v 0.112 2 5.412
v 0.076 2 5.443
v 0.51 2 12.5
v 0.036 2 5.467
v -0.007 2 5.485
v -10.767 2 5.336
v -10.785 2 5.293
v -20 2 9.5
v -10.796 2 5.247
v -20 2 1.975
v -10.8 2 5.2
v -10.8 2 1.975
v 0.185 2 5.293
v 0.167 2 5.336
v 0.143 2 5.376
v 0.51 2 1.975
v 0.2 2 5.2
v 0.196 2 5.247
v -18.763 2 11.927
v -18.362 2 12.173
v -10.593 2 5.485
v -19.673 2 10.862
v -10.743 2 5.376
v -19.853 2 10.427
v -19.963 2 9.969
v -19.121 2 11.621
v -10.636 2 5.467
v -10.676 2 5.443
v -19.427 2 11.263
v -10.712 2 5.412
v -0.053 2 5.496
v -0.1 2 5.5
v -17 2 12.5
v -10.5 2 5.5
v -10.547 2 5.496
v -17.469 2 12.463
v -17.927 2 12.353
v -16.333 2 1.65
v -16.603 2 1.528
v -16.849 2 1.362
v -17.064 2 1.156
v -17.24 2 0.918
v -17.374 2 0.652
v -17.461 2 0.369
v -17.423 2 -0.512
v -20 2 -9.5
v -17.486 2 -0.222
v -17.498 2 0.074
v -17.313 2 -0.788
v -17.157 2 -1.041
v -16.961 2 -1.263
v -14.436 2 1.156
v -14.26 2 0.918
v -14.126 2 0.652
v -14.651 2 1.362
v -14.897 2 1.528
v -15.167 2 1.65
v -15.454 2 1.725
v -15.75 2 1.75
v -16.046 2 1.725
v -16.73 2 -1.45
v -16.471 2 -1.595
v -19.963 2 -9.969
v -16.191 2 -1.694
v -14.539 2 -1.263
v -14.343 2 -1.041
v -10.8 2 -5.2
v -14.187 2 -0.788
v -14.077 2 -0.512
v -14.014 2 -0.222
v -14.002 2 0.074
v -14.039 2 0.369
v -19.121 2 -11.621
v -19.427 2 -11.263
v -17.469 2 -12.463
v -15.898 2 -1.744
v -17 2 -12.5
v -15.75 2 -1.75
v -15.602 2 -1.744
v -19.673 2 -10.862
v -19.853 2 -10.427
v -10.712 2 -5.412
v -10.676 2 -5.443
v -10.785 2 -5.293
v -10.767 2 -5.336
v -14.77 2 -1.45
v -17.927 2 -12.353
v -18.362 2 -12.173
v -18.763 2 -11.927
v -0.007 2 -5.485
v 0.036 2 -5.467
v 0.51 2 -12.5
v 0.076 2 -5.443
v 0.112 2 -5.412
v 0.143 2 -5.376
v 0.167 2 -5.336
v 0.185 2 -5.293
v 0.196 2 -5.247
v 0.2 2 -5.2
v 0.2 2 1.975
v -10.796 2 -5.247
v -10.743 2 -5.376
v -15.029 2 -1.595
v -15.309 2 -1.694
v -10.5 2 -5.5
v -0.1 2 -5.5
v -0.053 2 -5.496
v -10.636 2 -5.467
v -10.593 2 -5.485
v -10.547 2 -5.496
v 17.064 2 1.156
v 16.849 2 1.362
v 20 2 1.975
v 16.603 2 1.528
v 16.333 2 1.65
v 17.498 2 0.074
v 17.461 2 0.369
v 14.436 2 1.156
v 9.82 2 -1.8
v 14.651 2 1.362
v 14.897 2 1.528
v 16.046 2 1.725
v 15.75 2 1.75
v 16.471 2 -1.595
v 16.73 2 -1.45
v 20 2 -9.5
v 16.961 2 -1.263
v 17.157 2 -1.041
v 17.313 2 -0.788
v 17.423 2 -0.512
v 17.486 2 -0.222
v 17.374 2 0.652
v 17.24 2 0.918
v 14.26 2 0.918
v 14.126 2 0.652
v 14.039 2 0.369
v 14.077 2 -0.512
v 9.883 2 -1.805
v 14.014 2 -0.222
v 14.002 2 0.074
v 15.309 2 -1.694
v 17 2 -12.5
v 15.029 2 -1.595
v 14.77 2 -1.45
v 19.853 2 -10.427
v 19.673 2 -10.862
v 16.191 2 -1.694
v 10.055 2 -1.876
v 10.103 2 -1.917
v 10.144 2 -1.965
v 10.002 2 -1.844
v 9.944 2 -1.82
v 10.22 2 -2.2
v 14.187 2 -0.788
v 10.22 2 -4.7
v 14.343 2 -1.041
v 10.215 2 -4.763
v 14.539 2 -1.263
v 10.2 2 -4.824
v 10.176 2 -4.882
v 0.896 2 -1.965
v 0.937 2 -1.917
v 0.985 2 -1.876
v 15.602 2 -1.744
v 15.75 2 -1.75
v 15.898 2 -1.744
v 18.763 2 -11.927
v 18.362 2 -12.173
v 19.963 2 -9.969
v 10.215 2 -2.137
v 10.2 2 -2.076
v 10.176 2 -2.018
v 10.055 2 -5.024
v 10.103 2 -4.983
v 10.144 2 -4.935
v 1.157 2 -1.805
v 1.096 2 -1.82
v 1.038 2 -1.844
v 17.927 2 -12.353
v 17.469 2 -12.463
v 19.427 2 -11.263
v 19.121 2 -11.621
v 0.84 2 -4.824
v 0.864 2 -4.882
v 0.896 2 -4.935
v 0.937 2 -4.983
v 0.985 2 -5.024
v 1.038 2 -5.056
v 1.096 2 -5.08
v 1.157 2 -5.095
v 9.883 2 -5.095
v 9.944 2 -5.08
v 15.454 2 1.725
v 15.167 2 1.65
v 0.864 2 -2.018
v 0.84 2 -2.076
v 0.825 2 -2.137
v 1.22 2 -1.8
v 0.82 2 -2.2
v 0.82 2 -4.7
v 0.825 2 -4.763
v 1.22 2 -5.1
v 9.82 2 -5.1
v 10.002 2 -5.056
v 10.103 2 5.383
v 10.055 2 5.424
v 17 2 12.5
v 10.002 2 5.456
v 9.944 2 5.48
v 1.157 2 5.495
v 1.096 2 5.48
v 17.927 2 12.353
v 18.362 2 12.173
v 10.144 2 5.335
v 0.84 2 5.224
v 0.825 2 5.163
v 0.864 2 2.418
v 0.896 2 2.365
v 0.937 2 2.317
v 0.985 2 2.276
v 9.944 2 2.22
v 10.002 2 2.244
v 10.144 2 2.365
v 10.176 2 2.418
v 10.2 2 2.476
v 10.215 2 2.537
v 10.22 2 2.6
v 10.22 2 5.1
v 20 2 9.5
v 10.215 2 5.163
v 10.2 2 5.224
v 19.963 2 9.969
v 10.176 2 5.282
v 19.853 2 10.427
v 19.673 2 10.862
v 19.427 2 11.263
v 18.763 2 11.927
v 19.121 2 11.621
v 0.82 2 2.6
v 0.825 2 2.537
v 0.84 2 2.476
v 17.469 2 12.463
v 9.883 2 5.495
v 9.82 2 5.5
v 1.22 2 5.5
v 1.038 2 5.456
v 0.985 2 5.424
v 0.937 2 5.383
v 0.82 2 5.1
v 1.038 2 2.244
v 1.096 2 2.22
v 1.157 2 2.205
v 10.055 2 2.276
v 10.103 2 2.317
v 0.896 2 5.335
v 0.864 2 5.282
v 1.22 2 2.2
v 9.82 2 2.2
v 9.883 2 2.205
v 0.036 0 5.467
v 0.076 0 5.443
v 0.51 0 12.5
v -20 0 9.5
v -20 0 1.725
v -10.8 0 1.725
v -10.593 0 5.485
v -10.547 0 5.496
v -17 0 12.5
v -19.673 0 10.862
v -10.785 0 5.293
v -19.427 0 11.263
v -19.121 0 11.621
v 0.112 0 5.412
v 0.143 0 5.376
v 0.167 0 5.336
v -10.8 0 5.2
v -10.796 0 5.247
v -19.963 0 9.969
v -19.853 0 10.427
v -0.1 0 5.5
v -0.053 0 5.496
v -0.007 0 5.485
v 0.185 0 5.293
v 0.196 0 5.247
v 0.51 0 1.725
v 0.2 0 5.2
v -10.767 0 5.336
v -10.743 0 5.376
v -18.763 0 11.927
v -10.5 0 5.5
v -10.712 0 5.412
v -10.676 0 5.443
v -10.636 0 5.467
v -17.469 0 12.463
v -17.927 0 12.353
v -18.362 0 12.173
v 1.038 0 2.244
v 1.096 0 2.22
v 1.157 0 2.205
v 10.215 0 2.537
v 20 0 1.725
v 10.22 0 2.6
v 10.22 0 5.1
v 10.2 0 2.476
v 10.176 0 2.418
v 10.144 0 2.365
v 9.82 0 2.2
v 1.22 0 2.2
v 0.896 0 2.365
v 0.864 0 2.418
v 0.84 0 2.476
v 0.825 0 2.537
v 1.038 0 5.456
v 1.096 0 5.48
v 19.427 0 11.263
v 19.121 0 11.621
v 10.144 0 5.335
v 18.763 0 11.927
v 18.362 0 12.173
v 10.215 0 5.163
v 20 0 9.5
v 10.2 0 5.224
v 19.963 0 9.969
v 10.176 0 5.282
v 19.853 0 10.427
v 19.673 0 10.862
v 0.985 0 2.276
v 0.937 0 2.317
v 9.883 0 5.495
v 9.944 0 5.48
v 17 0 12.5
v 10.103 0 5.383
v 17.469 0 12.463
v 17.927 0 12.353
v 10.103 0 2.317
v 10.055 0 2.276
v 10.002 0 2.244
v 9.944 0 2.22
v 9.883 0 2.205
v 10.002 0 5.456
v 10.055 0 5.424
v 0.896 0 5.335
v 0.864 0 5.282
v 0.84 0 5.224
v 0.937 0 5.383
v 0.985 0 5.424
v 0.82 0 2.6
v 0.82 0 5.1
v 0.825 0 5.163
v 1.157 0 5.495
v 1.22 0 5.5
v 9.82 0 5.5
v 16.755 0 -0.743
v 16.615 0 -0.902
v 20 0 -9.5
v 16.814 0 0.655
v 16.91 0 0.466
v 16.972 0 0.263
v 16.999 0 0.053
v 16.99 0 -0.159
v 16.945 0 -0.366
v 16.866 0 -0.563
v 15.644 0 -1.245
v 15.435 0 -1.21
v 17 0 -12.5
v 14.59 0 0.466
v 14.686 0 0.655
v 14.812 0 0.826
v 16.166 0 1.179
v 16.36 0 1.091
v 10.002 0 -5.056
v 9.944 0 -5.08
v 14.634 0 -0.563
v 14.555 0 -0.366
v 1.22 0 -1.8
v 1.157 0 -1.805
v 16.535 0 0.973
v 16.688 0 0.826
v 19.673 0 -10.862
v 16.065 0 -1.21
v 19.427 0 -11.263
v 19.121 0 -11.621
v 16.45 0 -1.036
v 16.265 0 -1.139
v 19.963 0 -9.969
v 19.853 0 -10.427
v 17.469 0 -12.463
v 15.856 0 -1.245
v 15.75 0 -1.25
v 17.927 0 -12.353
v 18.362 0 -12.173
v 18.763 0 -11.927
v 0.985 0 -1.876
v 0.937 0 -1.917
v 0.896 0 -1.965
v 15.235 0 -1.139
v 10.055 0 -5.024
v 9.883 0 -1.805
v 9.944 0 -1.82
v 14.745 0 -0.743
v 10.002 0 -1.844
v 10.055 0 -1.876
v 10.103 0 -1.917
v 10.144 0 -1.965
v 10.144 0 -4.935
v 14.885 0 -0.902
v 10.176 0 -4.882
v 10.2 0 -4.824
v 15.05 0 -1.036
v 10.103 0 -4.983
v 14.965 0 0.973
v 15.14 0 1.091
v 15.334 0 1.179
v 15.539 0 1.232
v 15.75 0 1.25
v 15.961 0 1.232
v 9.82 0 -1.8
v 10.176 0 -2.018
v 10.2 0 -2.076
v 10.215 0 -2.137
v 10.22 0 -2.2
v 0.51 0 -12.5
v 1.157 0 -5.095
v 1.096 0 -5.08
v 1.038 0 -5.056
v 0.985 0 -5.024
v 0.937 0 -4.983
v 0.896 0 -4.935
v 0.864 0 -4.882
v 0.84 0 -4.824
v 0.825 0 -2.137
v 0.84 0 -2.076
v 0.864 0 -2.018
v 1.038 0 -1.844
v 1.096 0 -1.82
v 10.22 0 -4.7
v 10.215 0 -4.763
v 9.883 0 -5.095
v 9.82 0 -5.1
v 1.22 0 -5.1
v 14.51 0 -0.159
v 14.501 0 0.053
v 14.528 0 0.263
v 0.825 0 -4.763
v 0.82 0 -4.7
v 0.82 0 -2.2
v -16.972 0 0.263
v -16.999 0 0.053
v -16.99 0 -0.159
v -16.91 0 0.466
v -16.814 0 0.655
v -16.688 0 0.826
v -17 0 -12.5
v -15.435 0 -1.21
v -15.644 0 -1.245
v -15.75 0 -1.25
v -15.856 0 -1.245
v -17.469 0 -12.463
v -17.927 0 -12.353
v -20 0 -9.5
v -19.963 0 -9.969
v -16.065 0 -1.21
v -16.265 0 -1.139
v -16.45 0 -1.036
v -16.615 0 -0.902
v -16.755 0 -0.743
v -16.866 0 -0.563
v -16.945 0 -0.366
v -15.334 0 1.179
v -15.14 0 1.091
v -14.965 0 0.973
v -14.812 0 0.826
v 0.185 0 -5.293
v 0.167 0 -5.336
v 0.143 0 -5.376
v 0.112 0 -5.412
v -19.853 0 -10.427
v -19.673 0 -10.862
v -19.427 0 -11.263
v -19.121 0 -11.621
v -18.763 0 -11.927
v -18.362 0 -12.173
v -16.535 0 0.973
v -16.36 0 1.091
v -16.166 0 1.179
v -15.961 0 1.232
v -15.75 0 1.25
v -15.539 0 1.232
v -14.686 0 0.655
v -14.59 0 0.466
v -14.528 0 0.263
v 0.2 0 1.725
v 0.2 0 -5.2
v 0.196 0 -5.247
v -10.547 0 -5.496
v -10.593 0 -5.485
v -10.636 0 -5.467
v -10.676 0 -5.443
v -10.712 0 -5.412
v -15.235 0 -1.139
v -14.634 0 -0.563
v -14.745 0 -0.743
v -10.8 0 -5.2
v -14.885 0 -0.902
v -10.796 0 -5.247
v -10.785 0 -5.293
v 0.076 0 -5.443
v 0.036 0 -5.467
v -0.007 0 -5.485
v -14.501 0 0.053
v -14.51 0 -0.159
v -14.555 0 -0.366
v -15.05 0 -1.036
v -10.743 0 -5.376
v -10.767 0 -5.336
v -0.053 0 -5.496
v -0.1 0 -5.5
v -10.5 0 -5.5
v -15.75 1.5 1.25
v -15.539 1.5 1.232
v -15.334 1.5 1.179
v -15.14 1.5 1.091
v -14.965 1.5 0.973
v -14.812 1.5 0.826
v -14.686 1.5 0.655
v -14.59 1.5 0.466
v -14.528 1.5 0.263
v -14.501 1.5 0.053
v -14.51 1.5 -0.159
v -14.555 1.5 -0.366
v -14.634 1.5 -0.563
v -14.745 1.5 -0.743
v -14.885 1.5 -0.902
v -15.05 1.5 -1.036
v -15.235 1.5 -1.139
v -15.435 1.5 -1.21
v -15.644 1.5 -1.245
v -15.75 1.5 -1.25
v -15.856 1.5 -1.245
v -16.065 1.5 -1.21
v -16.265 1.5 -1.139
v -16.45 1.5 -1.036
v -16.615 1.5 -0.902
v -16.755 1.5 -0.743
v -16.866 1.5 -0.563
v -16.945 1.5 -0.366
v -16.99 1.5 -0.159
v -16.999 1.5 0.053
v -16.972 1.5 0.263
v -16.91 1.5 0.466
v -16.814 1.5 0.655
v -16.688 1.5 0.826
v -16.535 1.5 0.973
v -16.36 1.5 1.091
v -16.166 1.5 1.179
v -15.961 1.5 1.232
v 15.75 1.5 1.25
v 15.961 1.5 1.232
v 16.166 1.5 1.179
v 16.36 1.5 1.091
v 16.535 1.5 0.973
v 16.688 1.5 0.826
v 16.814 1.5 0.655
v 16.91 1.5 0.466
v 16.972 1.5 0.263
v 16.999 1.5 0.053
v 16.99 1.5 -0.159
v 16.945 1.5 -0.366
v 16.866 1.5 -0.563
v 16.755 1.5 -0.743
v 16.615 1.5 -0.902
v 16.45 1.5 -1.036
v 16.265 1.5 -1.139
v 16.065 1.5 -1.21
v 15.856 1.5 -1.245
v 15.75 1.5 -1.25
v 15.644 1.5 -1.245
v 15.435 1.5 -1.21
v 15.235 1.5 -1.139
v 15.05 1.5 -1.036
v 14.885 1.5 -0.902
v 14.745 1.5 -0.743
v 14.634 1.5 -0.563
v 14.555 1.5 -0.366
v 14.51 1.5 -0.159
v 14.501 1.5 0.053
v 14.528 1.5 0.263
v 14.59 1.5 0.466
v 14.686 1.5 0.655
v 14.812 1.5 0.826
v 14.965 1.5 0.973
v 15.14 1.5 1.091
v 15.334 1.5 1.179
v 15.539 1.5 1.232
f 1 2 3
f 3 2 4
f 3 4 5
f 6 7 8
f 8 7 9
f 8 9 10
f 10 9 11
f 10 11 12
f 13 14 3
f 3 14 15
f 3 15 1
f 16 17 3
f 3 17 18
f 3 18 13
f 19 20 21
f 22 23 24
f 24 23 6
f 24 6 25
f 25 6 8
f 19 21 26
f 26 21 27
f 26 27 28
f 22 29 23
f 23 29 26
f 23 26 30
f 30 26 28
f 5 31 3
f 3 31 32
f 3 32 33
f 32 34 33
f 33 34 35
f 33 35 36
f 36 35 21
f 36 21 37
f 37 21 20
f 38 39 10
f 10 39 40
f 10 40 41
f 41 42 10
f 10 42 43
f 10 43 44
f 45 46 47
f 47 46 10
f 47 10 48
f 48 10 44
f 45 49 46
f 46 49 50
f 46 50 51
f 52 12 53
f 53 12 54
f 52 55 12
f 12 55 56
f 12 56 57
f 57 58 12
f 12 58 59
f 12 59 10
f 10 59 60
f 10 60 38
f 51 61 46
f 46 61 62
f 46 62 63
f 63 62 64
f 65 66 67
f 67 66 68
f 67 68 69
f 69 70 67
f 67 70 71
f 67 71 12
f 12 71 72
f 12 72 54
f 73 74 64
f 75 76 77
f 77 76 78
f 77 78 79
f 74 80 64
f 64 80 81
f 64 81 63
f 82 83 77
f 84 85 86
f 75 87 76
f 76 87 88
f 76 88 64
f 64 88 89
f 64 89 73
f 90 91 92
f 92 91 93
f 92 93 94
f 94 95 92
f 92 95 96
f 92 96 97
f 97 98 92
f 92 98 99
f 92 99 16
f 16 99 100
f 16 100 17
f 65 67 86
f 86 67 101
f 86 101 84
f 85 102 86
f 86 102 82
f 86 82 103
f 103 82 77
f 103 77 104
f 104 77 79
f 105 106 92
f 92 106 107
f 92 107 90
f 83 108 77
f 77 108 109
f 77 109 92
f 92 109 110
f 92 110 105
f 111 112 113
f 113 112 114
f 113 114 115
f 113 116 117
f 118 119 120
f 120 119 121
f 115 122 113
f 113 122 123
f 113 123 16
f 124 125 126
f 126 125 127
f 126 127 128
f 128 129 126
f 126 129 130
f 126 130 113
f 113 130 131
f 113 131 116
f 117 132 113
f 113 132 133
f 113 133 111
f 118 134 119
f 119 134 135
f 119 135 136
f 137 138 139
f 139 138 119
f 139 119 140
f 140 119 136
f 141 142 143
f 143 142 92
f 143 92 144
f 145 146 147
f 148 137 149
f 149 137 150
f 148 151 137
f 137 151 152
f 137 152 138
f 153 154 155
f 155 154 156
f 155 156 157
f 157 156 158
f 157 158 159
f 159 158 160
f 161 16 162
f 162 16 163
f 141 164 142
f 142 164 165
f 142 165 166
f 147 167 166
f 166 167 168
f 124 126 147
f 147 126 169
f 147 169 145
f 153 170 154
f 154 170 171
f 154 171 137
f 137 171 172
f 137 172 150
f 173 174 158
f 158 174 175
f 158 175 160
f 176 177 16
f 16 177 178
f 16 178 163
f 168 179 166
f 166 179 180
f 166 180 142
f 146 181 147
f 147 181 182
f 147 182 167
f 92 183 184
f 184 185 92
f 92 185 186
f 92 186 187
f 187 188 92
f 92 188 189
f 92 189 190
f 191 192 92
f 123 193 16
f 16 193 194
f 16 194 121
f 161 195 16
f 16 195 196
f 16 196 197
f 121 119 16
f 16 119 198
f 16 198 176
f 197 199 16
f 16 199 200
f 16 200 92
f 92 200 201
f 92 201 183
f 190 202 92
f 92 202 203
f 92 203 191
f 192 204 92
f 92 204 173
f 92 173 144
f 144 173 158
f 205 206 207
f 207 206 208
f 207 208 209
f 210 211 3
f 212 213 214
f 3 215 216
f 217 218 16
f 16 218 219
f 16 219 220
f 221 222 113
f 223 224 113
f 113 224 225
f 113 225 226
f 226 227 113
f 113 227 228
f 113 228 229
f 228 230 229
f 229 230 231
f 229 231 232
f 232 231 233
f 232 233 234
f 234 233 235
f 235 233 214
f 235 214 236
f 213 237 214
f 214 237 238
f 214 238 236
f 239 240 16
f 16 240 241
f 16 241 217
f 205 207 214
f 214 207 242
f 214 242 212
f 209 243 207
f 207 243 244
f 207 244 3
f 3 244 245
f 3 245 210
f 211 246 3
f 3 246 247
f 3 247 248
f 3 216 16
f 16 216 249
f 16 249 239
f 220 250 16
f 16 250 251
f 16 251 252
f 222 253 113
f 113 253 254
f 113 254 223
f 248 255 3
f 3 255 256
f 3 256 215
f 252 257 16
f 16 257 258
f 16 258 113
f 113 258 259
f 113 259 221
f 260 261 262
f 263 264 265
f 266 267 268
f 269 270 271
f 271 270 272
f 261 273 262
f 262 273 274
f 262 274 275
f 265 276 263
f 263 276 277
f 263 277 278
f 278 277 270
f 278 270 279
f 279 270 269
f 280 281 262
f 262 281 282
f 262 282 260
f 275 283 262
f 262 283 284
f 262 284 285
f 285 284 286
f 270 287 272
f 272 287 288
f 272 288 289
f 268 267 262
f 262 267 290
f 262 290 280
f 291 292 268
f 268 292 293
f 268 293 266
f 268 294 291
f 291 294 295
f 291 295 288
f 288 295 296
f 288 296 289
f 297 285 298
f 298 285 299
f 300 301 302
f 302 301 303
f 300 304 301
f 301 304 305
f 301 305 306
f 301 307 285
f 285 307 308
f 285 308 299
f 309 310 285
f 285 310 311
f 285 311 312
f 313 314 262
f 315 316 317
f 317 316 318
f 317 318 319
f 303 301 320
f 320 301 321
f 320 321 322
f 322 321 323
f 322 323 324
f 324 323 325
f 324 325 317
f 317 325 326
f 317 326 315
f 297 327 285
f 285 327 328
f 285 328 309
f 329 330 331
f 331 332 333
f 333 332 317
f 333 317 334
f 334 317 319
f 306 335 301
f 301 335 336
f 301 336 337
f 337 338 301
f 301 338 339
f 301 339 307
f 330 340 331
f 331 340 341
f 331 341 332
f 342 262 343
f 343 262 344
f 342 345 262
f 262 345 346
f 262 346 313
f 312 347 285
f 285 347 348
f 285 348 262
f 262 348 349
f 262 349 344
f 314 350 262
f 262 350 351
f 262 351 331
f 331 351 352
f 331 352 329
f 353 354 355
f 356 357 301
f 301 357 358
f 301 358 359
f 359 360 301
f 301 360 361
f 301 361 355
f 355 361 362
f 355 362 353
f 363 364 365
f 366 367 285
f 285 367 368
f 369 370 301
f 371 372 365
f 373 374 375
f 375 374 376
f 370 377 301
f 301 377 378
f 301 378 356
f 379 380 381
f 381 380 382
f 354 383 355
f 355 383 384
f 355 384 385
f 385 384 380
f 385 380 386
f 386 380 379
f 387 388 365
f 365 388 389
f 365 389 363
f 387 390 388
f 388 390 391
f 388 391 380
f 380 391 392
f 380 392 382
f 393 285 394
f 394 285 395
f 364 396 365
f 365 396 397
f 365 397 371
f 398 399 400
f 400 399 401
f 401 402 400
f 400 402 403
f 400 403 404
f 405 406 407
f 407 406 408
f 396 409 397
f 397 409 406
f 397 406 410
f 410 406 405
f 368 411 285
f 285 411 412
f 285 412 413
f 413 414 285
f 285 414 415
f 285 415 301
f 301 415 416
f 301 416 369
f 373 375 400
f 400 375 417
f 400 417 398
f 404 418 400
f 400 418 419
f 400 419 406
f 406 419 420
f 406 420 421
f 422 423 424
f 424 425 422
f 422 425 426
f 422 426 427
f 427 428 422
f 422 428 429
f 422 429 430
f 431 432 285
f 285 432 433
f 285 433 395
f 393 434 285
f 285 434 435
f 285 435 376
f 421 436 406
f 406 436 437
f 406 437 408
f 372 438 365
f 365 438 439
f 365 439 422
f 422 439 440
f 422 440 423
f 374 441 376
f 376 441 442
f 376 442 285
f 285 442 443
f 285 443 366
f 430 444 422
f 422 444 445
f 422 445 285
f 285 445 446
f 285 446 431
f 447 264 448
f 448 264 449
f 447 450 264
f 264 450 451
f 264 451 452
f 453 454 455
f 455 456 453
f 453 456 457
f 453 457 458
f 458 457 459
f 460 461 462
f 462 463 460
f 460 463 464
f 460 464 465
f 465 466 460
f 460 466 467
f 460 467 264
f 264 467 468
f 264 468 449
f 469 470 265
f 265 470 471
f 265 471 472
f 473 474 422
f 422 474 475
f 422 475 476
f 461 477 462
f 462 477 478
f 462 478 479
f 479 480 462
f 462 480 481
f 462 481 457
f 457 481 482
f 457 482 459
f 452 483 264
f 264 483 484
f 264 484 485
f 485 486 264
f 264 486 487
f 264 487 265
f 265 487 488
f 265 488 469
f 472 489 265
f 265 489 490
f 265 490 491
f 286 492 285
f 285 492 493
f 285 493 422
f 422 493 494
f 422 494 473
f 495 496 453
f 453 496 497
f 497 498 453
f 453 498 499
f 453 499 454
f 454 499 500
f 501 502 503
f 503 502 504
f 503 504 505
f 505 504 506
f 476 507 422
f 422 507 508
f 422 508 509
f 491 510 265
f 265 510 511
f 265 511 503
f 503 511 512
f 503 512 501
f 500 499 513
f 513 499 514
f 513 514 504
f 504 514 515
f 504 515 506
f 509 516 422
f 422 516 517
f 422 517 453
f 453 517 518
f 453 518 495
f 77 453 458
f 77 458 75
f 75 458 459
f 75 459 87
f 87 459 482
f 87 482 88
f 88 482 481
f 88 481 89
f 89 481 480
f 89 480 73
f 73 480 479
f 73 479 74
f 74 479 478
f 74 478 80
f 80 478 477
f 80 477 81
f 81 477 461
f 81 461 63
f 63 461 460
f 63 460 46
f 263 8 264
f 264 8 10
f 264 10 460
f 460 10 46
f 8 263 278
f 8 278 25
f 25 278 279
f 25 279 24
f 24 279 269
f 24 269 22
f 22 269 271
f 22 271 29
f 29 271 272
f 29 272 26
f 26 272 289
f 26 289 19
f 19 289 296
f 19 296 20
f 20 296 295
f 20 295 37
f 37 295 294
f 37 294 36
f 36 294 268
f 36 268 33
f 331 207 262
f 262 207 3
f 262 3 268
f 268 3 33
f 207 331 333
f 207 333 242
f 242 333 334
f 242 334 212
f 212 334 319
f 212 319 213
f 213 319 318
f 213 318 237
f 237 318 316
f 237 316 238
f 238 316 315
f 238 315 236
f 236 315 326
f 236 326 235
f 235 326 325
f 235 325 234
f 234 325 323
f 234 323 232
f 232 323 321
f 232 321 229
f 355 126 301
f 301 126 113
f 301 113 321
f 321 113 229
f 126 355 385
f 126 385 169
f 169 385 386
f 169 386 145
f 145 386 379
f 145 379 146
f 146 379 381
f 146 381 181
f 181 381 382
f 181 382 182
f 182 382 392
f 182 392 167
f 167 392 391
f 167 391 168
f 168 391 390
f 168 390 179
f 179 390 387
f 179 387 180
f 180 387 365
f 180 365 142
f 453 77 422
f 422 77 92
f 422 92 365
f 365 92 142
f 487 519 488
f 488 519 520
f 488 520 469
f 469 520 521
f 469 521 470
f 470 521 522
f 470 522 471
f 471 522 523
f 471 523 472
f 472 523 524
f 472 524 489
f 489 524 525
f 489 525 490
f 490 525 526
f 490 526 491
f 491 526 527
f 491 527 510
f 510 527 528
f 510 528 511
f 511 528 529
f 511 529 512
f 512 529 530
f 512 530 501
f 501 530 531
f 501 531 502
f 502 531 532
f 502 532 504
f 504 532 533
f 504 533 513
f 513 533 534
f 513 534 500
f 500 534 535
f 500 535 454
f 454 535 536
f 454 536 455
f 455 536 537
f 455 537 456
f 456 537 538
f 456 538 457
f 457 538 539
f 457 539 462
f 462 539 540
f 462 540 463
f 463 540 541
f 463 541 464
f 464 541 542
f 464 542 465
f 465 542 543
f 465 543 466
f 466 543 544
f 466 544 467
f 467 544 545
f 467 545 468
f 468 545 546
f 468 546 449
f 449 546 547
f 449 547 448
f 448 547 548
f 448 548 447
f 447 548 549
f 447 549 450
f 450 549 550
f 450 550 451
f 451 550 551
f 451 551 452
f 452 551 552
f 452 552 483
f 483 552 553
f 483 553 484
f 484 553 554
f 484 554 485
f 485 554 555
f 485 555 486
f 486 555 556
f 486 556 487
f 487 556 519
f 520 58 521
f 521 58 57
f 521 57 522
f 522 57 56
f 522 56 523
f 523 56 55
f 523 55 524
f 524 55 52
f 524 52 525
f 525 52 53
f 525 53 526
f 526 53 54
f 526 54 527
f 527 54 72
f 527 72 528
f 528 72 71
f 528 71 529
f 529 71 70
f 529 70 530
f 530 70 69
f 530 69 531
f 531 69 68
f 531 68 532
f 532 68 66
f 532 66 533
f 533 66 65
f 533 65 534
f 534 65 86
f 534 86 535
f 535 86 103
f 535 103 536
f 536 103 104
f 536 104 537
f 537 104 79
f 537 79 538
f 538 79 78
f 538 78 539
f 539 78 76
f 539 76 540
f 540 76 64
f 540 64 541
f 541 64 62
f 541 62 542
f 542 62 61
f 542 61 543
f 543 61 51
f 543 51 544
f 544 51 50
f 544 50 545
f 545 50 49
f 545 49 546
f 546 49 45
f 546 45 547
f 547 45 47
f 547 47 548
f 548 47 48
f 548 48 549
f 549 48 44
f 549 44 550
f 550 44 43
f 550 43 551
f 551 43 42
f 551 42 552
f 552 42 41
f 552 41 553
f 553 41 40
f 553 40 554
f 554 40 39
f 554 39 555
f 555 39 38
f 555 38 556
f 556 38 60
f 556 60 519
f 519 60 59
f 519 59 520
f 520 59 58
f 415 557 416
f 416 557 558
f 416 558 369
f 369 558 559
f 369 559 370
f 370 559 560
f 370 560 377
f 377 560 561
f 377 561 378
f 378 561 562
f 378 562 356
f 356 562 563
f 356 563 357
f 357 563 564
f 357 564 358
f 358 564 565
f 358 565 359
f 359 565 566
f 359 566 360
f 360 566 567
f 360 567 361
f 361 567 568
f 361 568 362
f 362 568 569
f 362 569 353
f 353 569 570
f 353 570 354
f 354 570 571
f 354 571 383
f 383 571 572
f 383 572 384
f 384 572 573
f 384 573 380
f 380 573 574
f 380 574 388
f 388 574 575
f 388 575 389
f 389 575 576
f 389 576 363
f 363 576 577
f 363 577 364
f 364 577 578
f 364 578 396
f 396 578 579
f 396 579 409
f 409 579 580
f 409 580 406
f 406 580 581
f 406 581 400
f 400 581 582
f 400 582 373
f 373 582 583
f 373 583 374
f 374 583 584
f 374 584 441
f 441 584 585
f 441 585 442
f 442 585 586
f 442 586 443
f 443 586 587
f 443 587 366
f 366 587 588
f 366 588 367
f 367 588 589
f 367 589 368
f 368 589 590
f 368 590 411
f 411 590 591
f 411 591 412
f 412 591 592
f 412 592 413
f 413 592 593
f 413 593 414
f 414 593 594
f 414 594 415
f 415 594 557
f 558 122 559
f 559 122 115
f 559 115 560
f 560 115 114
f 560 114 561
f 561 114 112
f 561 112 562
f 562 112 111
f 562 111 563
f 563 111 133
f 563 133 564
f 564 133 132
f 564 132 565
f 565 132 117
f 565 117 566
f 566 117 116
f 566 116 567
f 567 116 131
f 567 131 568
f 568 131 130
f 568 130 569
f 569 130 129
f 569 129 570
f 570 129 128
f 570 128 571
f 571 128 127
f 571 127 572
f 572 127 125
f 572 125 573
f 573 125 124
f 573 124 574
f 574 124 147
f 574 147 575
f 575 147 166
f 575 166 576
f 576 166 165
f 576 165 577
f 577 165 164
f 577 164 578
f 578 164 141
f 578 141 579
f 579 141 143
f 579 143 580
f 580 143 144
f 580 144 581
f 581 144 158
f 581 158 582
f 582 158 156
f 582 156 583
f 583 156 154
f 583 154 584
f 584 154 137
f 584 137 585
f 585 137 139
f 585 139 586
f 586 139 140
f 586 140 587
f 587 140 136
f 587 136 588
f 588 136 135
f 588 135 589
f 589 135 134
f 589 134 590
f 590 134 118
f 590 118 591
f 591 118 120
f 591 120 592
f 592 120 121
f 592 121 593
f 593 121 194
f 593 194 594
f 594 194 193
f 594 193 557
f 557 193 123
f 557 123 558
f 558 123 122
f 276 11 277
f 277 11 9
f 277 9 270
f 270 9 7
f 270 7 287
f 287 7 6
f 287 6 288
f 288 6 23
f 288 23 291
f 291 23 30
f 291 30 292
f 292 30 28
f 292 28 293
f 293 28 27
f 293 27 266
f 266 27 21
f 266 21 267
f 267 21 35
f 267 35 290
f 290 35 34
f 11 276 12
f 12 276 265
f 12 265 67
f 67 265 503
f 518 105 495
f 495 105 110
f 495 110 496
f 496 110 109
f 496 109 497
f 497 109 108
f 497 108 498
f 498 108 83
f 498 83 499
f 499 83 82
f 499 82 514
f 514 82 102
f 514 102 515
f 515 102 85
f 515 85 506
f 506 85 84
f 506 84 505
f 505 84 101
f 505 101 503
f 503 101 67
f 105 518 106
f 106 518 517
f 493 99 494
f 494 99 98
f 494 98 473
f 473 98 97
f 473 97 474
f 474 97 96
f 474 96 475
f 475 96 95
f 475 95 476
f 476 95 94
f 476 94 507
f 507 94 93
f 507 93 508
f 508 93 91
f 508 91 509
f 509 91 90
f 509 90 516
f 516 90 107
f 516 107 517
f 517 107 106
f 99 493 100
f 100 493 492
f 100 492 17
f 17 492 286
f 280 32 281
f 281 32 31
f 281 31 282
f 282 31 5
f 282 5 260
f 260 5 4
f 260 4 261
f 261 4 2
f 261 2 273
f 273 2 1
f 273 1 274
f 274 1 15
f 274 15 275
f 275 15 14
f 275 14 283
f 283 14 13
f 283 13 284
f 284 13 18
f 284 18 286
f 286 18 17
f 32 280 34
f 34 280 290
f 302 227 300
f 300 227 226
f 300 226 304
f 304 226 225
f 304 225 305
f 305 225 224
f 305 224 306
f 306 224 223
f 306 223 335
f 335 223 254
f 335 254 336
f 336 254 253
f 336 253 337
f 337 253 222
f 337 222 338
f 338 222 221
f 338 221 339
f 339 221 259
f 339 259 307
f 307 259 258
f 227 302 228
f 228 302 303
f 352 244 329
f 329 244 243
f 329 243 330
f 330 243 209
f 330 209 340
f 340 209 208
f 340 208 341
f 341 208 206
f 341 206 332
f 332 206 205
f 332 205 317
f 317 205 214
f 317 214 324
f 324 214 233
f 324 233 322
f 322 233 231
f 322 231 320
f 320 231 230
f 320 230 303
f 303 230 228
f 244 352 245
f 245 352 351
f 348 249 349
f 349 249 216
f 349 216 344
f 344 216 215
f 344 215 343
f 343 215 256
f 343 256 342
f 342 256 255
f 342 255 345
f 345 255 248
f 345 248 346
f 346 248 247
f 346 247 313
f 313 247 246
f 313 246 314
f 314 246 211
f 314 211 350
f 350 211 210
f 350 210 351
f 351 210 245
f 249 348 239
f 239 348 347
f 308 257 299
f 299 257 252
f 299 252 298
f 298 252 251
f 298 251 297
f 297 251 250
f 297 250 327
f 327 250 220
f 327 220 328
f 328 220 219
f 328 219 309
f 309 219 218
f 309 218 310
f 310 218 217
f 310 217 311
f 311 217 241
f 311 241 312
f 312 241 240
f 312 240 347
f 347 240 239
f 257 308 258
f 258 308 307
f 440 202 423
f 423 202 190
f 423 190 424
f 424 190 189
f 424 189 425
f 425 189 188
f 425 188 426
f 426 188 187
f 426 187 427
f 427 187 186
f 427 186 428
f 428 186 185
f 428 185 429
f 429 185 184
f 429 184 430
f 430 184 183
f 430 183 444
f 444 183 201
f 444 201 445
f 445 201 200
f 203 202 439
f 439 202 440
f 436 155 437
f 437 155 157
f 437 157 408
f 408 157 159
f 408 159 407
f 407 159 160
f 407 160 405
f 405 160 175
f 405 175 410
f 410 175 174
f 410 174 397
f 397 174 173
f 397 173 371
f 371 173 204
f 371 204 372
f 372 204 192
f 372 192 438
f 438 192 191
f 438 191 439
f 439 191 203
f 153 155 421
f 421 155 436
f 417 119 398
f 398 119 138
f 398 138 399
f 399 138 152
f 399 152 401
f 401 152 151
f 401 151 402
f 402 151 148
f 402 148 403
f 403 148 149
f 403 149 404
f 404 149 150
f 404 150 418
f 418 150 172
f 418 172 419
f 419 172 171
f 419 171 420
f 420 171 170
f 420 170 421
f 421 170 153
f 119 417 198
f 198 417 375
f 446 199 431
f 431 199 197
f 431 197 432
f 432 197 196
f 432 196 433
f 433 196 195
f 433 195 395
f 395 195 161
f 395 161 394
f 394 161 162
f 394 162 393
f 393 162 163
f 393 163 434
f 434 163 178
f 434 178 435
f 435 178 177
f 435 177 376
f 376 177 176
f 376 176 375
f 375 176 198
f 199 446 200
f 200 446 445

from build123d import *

# Parameters (mm, degrees)
EXTRUDE_1_DEPTH            = 2
CUT_EXTRUDE_1_REACH        = 25.67
SKETCH_2_R                 = 1.25
CHAMFER_1_SIZE             = 0.5
CHAMFER_1_OF_MIRROR_3_SIZE = 0.5
CUT_EXTRUDE_2_REACH        = 25.67
CUT_EXTRUDE_3_REACH        = 25.67
CUT_EXTRUDE_4_REACH        = 25.67


with BuildPart() as part:
    # 草图1 → 凸台-拉伸1 (new body)
    with BuildSketch(Plane(origin=(0, 0, 0), x_dir=(1, 0, 0), z_dir=(0, 1, 0))):
        with BuildLine():
            Line((-17, 12.5), (17, 12.5))
            ThreePointArc((17, 12.5), (19.121320344, 11.621320344), (20, 9.5))
            Line((20, 9.5), (20, -9.5))
            ThreePointArc((20, -9.5), (19.121320344, -11.621320344), (17, -12.5))
            Line((17, -12.5), (-17, -12.5))
            ThreePointArc((-17, -12.5), (-19.121320344, -11.621320344), (-20, -9.5))
            Line((-20, -9.5), (-20, 9.5))
            ThreePointArc((-20, 9.5), (-19.121320344, 11.621320344), (-17, 12.5))
        make_face()
    extrude(amount=EXTRUDE_1_DEPTH)

    # 草图2 → 切除-拉伸1 (cut, up to next)
    with BuildSketch(Plane(origin=(0, 2, 0), x_dir=(1, 0, 0), z_dir=(0, 1, 0)), mode=Mode.PRIVATE) as cut_extrude_1_sk1:
        with Locations(Location((-15.75, 0, 0), (0, 0, 270))):
            Circle(SKETCH_2_R)
    cut_extrude_1_tool1 = extrude(cut_extrude_1_sk1.sketch, amount=-CUT_EXTRUDE_1_REACH, mode=Mode.PRIVATE) & part.part
    cut_extrude_1 = cut_extrude_1_tool1.solids().sort_by_distance((-15.75, 2, 0))[0]
    add(cut_extrude_1, mode=Mode.SUBTRACT)

    # 倒角1
    chamfer_1_edges = [part.edges().sort_by_distance(p)[0] for p in [
        (-15.75, 2, -1.25),
    ]]
    chamfer(chamfer_1_edges, length=CHAMFER_1_SIZE)

    # 镜向3: 切除-拉伸1 across plane
    add(cut_extrude_1.mirror(Plane(origin=(0, 0, 0), x_dir=(0, 0, 1), z_dir=(1, 0, 0))), mode=Mode.SUBTRACT)

    # 倒角1 of 镜向3
    chamfer_1_of_mirror_3_edges = [part.edges().sort_by_distance(p)[0] for p in [
        (15.75, 2, -1.25),
    ]]
    chamfer(chamfer_1_of_mirror_3_edges, length=CHAMFER_1_OF_MIRROR_3_SIZE)

    # 草图3 → 切除-拉伸2 (cut, up to next)
    with BuildSketch(Plane(origin=(0, 2, 0), x_dir=(1, 0, 0), z_dir=(0, 1, 0)), mode=Mode.PRIVATE) as cut_extrude_2_sk1:
        with BuildLine():
            Line((-10.5, 5.5), (-0.1, 5.5))
            ThreePointArc((-0.1, 5.5), (0.112132034, 5.412132034), (0.2, 5.2))
            Line((0.2, 5.2), (0.2, -5.2))
            ThreePointArc((0.2, -5.2), (0.112132034, -5.412132034), (-0.1, -5.5))
            Line((-0.1, -5.5), (-10.5, -5.5))
            ThreePointArc((-10.5, -5.5), (-10.712132034, -5.412132034), (-10.8, -5.2))
            Line((-10.8, -5.2), (-10.8, 5.2))
            ThreePointArc((-10.8, 5.2), (-10.712132034, 5.412132034), (-10.5, 5.5))
        make_face()
    cut_extrude_2_tool1 = extrude(cut_extrude_2_sk1.sketch, amount=-CUT_EXTRUDE_2_REACH, mode=Mode.PRIVATE) & part.part
    add(cut_extrude_2_tool1.solids().sort_by_distance((-5.3, 2, 0))[0], mode=Mode.SUBTRACT)

    # 草图4 → 切除-拉伸3 (cut, up to next)
    with BuildSketch(Plane(origin=(0, 2, 0), x_dir=(1, 0, 0), z_dir=(0, 1, 0)), mode=Mode.PRIVATE) as cut_extrude_3_sk1:
        with BuildLine():
            Line((1.22, -2.2), (9.82, -2.2))
            ThreePointArc((9.82, -2.2), (10.102842712, -2.317157288), (10.22, -2.6))
            Line((10.22, -2.6), (10.22, -5.1))
            ThreePointArc((10.22, -5.1), (10.102842712, -5.382842712), (9.82, -5.5))
            Line((9.82, -5.5), (1.22, -5.5))
            ThreePointArc((1.22, -5.5), (0.937157288, -5.382842712), (0.82, -5.1))
            Line((0.82, -5.1), (0.82, -2.6))
            ThreePointArc((0.82, -2.6), (0.937157288, -2.317157288), (1.22, -2.2))
        make_face()
    cut_extrude_3_tool1 = extrude(cut_extrude_3_sk1.sketch, amount=-CUT_EXTRUDE_3_REACH, mode=Mode.PRIVATE) & part.part
    add(cut_extrude_3_tool1.solids().sort_by_distance((5.52, 2, 3.85))[0], mode=Mode.SUBTRACT)

    # 草图5 → 切除-拉伸4 (cut, up to next)
    with BuildSketch(Plane(origin=(0, 2, 0), x_dir=(1, 0, 0), z_dir=(0, 1, 0)), mode=Mode.PRIVATE) as cut_extrude_4_sk1:
        with BuildLine():
            Line((1.22, 5.1), (9.82, 5.1))
            ThreePointArc((9.82, 5.1), (10.102842712, 4.982842712), (10.22, 4.7))
            Line((10.22, 4.7), (10.22, 2.2))
            ThreePointArc((10.22, 2.2), (10.102842712, 1.917157288), (9.82, 1.8))
            Line((9.82, 1.8), (1.22, 1.8))
            ThreePointArc((1.22, 1.8), (0.937157288, 1.917157288), (0.82, 2.2))
            Line((0.82, 2.2), (0.82, 4.7))
            ThreePointArc((0.82, 4.7), (0.937157288, 4.982842712), (1.22, 5.1))
        make_face()
    cut_extrude_4_tool1 = extrude(cut_extrude_4_sk1.sketch, amount=-CUT_EXTRUDE_4_REACH, mode=Mode.PRIVATE) & part.part
    add(cut_extrude_4_tool1.solids().sort_by_distance((5.52, 2, -3.45))[0], mode=Mode.SUBTRACT)


solid = part.part
